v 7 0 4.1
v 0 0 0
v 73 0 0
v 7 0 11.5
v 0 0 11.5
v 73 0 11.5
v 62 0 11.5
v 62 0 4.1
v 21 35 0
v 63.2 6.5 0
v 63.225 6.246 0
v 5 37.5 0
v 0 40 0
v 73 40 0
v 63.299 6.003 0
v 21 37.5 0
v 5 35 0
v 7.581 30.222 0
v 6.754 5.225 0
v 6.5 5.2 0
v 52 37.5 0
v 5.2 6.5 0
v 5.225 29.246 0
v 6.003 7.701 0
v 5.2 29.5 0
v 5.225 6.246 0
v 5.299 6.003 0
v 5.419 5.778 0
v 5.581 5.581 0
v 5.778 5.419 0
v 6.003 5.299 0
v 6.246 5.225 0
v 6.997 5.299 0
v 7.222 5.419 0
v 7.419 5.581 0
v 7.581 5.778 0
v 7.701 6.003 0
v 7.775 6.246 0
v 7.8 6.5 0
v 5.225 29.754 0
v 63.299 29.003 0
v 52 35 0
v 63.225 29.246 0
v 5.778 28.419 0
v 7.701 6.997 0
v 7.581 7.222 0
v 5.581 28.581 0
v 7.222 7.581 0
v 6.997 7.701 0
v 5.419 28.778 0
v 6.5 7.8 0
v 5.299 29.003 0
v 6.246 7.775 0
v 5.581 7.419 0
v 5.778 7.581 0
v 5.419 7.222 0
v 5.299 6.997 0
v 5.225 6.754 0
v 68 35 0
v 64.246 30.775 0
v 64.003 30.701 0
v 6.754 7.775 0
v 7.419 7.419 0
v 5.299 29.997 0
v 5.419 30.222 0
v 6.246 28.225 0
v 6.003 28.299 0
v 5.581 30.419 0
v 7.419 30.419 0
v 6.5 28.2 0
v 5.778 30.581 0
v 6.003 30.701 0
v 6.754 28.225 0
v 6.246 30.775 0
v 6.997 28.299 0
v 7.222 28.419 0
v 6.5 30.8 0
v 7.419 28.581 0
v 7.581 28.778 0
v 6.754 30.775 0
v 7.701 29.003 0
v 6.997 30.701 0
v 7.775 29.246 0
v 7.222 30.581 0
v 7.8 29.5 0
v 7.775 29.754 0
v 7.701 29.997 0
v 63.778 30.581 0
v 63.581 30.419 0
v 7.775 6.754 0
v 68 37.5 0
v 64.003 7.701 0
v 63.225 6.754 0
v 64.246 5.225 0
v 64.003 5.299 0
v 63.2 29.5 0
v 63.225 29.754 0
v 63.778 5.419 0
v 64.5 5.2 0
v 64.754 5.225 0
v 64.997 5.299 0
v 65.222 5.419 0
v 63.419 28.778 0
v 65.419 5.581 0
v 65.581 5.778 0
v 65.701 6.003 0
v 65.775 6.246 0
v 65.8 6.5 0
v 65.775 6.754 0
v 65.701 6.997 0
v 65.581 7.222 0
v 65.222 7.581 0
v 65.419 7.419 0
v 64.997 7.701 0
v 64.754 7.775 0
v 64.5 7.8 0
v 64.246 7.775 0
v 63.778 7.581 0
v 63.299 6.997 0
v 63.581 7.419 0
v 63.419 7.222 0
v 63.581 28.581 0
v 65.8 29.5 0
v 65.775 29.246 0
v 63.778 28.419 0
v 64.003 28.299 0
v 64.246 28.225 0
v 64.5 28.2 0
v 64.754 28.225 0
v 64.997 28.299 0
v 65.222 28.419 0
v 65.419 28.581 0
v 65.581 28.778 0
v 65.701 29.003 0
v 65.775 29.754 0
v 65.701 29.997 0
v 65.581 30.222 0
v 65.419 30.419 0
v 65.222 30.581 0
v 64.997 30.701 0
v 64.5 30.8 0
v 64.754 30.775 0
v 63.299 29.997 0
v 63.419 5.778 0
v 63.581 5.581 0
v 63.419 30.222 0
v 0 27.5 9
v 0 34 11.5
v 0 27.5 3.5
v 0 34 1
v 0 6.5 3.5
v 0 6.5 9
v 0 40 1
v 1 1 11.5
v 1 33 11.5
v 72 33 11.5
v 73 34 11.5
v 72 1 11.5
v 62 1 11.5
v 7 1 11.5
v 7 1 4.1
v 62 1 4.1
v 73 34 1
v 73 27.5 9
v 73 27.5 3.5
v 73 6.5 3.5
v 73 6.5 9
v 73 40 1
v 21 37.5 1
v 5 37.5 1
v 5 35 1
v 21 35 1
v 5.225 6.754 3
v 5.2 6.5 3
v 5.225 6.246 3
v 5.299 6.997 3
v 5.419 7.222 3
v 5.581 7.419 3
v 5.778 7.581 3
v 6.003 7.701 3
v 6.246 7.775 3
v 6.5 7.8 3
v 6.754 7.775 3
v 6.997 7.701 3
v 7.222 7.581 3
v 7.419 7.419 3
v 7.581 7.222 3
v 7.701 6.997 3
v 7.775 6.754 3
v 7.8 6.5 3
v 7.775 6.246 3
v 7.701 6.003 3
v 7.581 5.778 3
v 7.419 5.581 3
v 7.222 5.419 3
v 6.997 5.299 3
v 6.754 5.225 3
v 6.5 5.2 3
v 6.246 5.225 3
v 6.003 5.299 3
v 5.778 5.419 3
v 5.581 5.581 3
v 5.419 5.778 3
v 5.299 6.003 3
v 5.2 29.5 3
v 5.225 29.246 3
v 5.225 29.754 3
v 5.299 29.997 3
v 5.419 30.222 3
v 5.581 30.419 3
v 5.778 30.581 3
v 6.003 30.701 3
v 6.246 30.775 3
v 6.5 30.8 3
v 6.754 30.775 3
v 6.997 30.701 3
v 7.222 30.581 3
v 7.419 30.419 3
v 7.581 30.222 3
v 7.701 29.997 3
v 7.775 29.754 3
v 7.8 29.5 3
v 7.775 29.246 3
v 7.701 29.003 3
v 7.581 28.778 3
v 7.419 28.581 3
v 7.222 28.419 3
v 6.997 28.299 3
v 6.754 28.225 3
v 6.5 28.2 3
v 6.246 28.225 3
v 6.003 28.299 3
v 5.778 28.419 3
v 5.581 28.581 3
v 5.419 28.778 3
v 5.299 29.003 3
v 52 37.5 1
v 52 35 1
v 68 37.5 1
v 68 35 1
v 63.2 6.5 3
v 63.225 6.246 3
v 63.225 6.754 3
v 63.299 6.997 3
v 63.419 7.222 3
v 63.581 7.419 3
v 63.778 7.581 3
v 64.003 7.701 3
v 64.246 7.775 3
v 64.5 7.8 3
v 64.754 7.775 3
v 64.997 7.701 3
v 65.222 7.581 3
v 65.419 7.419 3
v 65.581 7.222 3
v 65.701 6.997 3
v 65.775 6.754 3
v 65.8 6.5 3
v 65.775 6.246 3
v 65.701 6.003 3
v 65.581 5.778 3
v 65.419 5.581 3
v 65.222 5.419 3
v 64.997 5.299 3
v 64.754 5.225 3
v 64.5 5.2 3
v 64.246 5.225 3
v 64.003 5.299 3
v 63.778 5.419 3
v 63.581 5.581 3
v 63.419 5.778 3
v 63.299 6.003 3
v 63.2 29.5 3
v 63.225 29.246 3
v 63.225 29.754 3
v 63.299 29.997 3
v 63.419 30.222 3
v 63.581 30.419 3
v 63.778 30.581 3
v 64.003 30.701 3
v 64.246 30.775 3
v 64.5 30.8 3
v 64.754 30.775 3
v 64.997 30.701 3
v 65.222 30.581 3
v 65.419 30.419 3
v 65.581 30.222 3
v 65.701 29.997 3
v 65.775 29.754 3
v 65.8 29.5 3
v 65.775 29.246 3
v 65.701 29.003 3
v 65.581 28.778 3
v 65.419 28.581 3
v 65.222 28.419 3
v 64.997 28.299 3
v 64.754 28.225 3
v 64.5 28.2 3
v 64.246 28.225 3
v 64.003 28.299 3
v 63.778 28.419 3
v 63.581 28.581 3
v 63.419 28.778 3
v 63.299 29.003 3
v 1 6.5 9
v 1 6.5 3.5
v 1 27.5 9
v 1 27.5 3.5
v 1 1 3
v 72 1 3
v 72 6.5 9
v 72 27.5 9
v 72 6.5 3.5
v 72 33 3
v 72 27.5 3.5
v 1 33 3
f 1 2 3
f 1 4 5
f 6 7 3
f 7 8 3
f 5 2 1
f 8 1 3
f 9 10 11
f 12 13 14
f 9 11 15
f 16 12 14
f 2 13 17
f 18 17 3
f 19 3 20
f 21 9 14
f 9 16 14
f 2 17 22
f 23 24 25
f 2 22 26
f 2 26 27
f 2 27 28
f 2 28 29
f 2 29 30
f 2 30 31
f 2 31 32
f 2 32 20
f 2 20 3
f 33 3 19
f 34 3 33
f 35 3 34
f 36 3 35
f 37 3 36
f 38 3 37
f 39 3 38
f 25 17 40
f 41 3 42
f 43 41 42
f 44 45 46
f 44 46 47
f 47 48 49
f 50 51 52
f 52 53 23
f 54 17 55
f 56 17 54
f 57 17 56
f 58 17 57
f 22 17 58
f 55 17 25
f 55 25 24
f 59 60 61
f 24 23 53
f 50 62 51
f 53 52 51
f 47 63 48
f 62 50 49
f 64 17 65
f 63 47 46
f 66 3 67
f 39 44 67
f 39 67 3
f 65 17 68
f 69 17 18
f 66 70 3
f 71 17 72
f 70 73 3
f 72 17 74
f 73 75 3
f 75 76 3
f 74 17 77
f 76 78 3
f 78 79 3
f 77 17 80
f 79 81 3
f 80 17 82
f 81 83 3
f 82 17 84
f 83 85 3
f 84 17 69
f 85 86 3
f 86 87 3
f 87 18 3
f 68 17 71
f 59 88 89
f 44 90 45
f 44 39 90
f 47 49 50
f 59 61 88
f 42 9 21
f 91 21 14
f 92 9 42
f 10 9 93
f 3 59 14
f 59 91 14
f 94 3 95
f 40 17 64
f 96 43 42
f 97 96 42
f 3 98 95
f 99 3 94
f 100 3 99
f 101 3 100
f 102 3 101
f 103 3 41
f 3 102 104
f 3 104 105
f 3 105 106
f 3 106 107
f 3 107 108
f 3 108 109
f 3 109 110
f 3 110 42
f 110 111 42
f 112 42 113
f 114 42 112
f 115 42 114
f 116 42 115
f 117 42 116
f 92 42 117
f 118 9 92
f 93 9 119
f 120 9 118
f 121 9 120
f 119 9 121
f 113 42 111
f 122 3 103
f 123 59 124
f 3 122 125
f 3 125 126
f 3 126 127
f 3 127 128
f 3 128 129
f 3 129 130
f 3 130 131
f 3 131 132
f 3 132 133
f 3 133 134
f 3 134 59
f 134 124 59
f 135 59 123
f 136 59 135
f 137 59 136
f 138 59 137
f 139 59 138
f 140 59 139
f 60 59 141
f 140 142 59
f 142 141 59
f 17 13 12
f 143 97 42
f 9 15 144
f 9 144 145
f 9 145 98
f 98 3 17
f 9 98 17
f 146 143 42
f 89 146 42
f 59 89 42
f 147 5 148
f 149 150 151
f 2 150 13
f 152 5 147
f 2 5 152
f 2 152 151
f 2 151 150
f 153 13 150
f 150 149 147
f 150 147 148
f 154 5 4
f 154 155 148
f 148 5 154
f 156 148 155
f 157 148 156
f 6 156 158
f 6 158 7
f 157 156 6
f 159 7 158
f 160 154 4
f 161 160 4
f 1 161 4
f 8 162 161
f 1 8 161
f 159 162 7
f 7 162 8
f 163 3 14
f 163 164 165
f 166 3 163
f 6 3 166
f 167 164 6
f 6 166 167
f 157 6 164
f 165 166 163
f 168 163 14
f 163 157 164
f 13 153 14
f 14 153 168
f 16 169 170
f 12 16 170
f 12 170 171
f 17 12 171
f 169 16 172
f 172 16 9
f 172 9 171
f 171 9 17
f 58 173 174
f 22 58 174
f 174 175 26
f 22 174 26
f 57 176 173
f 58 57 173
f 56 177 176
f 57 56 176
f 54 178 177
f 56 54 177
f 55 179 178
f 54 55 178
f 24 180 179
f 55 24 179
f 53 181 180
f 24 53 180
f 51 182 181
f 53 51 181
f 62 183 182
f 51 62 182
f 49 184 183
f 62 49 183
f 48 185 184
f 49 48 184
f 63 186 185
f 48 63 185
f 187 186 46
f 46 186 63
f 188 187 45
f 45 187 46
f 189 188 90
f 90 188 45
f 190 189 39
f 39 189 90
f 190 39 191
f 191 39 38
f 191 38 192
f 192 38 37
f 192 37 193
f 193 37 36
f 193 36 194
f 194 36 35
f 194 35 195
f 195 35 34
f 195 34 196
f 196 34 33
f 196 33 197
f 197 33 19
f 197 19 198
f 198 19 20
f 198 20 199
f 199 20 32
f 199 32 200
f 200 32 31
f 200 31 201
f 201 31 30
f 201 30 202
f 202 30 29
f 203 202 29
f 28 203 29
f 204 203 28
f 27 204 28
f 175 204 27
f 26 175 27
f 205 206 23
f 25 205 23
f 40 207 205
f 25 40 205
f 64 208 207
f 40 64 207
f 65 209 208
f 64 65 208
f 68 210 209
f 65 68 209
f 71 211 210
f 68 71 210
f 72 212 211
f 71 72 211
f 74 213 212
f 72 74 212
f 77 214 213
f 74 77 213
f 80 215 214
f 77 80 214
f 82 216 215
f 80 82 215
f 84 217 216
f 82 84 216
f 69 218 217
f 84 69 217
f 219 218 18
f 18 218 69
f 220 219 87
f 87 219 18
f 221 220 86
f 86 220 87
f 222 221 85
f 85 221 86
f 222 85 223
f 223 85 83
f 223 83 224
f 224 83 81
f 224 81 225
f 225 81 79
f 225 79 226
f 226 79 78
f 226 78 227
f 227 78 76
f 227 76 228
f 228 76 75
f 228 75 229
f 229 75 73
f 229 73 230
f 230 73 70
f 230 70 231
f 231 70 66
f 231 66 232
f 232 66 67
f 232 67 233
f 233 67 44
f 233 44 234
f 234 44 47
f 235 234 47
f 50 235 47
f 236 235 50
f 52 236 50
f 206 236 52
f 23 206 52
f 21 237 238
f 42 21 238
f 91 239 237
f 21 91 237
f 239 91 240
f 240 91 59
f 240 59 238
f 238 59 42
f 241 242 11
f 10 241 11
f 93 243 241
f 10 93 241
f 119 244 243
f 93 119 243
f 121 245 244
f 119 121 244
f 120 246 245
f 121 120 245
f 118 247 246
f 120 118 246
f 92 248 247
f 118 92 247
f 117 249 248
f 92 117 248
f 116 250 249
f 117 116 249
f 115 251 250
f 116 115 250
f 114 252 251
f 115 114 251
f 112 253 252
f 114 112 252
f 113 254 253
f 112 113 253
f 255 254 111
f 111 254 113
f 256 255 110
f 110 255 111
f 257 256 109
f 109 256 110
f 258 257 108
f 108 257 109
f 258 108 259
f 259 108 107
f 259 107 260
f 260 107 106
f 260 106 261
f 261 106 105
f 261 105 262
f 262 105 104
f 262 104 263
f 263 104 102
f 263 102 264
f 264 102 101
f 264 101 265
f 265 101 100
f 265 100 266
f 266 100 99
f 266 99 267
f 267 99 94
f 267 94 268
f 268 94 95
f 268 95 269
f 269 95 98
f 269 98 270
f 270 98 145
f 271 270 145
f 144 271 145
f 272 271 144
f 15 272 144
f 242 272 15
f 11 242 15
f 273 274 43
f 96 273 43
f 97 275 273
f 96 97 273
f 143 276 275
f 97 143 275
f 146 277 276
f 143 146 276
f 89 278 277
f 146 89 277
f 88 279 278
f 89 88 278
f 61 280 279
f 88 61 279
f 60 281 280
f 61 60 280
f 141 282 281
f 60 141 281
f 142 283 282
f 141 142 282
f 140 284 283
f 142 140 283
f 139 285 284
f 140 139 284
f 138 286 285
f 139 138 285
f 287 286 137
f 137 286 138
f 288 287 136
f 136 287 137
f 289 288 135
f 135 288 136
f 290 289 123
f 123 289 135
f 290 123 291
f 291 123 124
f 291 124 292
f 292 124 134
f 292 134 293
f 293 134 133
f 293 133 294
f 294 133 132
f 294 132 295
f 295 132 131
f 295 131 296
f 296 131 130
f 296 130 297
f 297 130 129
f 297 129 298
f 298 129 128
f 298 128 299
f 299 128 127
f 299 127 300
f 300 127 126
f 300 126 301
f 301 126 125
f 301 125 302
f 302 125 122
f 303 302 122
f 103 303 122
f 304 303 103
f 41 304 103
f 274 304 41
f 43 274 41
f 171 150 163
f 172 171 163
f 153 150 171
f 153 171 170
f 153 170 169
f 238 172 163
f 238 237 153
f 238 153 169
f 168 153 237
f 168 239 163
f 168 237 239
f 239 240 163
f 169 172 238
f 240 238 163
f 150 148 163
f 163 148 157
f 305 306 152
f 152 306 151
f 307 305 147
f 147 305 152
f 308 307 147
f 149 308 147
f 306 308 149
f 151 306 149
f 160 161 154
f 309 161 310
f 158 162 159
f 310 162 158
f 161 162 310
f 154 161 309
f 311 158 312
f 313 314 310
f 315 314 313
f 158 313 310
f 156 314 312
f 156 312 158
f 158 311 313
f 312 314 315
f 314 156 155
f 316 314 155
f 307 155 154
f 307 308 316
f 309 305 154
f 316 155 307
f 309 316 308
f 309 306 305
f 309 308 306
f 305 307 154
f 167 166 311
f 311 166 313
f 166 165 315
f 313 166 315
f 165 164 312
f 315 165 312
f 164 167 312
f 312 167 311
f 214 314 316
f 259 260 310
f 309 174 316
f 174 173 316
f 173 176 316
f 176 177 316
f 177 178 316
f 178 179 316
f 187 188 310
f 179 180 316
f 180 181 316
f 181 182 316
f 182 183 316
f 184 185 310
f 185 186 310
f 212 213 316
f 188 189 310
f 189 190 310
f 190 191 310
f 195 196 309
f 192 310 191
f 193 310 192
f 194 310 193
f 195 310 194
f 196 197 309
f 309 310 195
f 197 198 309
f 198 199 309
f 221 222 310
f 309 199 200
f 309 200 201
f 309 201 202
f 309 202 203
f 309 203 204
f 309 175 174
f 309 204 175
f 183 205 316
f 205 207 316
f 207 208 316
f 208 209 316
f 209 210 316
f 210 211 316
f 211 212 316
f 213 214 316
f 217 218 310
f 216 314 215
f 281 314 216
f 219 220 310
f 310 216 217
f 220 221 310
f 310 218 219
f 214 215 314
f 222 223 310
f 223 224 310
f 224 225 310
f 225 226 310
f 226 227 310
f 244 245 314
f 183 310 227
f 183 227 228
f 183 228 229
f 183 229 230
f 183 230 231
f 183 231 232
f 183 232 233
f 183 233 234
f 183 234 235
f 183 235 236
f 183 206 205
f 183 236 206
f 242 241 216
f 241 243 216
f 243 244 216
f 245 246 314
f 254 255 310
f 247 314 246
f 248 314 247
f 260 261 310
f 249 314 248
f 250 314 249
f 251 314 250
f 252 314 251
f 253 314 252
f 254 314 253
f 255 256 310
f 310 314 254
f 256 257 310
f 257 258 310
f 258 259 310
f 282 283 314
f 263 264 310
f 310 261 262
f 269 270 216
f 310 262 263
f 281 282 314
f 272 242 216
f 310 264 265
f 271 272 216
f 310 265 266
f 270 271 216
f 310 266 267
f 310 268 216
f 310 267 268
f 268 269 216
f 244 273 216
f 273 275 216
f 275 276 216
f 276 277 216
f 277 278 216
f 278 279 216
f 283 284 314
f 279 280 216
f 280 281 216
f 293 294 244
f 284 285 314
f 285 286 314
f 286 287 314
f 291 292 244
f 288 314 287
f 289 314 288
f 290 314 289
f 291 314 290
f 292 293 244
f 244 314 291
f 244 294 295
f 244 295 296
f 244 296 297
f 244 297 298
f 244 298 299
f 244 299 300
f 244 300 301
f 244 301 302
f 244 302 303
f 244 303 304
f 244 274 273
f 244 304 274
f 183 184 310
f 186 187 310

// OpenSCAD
// ==========================================
// Raspberry Pi Zero 2 W - Bento Box (Bottom) - 3.0mm Box Floor & 1.0mm Flat Handler
// ==========================================

pi_w = 65.0; 
pi_d = 30.0; 
pi_h = 1.6;  

thickness       = 1.0;    // 周囲の壁の厚み (1.0mm)
floor_thickness = 3.0;    // ボックス本体の底面プレートの厚み (3.0mm)
clearance       = 1.0;    // 基板とケース内壁の隙間
box_h           = 11.5;    // 全高 (内部コンポーネント空間5.5mmをキープ)

inner_w = 69.0 + (clearance * 2); 
inner_d = pi_d + (clearance * 2);
outer_w = inner_w + (thickness * 2);

// 全体の奥行き（Y軸）の外寸を 40mm に固定
outer_d = 40.0; 

// ボックス本体（立ち上がり壁があるエリア）の奥行き外寸
box_outer_d = inner_d + (thickness * 2);

hole_dx = 58.0;     
hole_dy = 23.0;     
post_r  = 2.2;      
screw_r = 1.3;      
post_h  = 1.5;      

$fn = 32;

main_box();

module main_box() {
    difference() {
        union() {
            // 1. 基板が収まるボックス本体（手前側に配置：底面は3.0mm厚になります）
            cube([outer_w, box_outer_d, box_h]);
            
            // 2. 🛠️【アップデート】奥側に突き出すフラットなハンドラー部分は「1.0mm厚」をキープ！
            translate([0, box_outer_d, 0])
                cube([outer_w, outer_d - box_outer_d, 1.0]);
            
            // 全ボスの基準位置をボックスの底面厚 (floor_thickness) の上に配置
            translate([thickness + clearance, thickness + clearance, floor_thickness]) {
                offset_x = ((inner_w - 4.0) - hole_dx) / 2;
                offset_y = (inner_d - hole_dy) / 2;
                translate([offset_x, offset_y, 0]) post_group();
            }
        }
        
        // 内側のくり抜き（開始高さを floor_thickness に変更）
        translate([thickness, thickness, floor_thickness])
            cube([inner_w, inner_d, box_h]);
        
        // ネジ下穴の引き算処理
        translate([thickness + clearance, thickness + clearance, 0]) {
            offset_x = ((inner_w - 4.0) - hole_dx) / 2;
            offset_y = (inner_d - hole_dy) / 2;
            translate([offset_x, offset_y, -0.5]) hole_group(h = box_h);
        }
        
        // 📷 左側面窓：底面の高さに合わせてZ軸開始位置を同期
        translate([-0.5, box_outer_d / 2 - 10.5, floor_thickness + post_h - 1.0])
            cube([thickness + 1, 21, 5.5]);

        // 🔲 右側面窓：底面の高さに合わせてZ軸開始位置を同期
        translate([outer_w - thickness - 0.5, box_outer_d / 2 - 10.5, floor_thickness + post_h - 1.0])
            cube([thickness + 1, 21, 5.5]);

        // 🔌 手前側の端子用切り欠き（HDMI/USB用）
        translate([thickness + clearance + 5, -0.5, (floor_thickness + post_h + pi_h) - 2.0])
            cube([pi_w - 10, thickness + 1, box_h]);

        // 🧵 🛠️【アップデート】マジックバンド固定用の貫通スリット窓
        // ハンドラー部分の厚み（1.0mm）に合わせて引き算の深さを最適化（-0.5から2.0mmまでカット）
        // 左側のスリット穴
        translate([thickness + 4, outer_d - thickness - 4.0, -0.5]) 
            cube([16, 2.5, 2.0]);
            
        // 右側のスリット穴
        translate([outer_w - thickness - 20, outer_d - thickness - 4.0, -0.5]) 
            cube([16, 2.5, 2.0]);
    }
}

module post_group() {
    cylinder(r = post_r, h = post_h);
    translate([hole_dx, 0, 0]) cylinder(r = post_r, h = post_h);
    translate([0, hole_dy, 0]) cylinder(r = post_r, h = post_h);
    translate([hole_dx, hole_dy, 0]) cylinder(r = post_r, h = post_h);
}

module hole_group(h) {
    cylinder(r = screw_r, h = h);
    translate([hole_dx, 0, 0]) cylinder(r = screw_r, h = h);
    translate([0, hole_dy, 0]) cylinder(r = screw_r, h = h);
    translate([hole_dx, hole_dy, 0]) cylinder(r = screw_r, h = h);
}
